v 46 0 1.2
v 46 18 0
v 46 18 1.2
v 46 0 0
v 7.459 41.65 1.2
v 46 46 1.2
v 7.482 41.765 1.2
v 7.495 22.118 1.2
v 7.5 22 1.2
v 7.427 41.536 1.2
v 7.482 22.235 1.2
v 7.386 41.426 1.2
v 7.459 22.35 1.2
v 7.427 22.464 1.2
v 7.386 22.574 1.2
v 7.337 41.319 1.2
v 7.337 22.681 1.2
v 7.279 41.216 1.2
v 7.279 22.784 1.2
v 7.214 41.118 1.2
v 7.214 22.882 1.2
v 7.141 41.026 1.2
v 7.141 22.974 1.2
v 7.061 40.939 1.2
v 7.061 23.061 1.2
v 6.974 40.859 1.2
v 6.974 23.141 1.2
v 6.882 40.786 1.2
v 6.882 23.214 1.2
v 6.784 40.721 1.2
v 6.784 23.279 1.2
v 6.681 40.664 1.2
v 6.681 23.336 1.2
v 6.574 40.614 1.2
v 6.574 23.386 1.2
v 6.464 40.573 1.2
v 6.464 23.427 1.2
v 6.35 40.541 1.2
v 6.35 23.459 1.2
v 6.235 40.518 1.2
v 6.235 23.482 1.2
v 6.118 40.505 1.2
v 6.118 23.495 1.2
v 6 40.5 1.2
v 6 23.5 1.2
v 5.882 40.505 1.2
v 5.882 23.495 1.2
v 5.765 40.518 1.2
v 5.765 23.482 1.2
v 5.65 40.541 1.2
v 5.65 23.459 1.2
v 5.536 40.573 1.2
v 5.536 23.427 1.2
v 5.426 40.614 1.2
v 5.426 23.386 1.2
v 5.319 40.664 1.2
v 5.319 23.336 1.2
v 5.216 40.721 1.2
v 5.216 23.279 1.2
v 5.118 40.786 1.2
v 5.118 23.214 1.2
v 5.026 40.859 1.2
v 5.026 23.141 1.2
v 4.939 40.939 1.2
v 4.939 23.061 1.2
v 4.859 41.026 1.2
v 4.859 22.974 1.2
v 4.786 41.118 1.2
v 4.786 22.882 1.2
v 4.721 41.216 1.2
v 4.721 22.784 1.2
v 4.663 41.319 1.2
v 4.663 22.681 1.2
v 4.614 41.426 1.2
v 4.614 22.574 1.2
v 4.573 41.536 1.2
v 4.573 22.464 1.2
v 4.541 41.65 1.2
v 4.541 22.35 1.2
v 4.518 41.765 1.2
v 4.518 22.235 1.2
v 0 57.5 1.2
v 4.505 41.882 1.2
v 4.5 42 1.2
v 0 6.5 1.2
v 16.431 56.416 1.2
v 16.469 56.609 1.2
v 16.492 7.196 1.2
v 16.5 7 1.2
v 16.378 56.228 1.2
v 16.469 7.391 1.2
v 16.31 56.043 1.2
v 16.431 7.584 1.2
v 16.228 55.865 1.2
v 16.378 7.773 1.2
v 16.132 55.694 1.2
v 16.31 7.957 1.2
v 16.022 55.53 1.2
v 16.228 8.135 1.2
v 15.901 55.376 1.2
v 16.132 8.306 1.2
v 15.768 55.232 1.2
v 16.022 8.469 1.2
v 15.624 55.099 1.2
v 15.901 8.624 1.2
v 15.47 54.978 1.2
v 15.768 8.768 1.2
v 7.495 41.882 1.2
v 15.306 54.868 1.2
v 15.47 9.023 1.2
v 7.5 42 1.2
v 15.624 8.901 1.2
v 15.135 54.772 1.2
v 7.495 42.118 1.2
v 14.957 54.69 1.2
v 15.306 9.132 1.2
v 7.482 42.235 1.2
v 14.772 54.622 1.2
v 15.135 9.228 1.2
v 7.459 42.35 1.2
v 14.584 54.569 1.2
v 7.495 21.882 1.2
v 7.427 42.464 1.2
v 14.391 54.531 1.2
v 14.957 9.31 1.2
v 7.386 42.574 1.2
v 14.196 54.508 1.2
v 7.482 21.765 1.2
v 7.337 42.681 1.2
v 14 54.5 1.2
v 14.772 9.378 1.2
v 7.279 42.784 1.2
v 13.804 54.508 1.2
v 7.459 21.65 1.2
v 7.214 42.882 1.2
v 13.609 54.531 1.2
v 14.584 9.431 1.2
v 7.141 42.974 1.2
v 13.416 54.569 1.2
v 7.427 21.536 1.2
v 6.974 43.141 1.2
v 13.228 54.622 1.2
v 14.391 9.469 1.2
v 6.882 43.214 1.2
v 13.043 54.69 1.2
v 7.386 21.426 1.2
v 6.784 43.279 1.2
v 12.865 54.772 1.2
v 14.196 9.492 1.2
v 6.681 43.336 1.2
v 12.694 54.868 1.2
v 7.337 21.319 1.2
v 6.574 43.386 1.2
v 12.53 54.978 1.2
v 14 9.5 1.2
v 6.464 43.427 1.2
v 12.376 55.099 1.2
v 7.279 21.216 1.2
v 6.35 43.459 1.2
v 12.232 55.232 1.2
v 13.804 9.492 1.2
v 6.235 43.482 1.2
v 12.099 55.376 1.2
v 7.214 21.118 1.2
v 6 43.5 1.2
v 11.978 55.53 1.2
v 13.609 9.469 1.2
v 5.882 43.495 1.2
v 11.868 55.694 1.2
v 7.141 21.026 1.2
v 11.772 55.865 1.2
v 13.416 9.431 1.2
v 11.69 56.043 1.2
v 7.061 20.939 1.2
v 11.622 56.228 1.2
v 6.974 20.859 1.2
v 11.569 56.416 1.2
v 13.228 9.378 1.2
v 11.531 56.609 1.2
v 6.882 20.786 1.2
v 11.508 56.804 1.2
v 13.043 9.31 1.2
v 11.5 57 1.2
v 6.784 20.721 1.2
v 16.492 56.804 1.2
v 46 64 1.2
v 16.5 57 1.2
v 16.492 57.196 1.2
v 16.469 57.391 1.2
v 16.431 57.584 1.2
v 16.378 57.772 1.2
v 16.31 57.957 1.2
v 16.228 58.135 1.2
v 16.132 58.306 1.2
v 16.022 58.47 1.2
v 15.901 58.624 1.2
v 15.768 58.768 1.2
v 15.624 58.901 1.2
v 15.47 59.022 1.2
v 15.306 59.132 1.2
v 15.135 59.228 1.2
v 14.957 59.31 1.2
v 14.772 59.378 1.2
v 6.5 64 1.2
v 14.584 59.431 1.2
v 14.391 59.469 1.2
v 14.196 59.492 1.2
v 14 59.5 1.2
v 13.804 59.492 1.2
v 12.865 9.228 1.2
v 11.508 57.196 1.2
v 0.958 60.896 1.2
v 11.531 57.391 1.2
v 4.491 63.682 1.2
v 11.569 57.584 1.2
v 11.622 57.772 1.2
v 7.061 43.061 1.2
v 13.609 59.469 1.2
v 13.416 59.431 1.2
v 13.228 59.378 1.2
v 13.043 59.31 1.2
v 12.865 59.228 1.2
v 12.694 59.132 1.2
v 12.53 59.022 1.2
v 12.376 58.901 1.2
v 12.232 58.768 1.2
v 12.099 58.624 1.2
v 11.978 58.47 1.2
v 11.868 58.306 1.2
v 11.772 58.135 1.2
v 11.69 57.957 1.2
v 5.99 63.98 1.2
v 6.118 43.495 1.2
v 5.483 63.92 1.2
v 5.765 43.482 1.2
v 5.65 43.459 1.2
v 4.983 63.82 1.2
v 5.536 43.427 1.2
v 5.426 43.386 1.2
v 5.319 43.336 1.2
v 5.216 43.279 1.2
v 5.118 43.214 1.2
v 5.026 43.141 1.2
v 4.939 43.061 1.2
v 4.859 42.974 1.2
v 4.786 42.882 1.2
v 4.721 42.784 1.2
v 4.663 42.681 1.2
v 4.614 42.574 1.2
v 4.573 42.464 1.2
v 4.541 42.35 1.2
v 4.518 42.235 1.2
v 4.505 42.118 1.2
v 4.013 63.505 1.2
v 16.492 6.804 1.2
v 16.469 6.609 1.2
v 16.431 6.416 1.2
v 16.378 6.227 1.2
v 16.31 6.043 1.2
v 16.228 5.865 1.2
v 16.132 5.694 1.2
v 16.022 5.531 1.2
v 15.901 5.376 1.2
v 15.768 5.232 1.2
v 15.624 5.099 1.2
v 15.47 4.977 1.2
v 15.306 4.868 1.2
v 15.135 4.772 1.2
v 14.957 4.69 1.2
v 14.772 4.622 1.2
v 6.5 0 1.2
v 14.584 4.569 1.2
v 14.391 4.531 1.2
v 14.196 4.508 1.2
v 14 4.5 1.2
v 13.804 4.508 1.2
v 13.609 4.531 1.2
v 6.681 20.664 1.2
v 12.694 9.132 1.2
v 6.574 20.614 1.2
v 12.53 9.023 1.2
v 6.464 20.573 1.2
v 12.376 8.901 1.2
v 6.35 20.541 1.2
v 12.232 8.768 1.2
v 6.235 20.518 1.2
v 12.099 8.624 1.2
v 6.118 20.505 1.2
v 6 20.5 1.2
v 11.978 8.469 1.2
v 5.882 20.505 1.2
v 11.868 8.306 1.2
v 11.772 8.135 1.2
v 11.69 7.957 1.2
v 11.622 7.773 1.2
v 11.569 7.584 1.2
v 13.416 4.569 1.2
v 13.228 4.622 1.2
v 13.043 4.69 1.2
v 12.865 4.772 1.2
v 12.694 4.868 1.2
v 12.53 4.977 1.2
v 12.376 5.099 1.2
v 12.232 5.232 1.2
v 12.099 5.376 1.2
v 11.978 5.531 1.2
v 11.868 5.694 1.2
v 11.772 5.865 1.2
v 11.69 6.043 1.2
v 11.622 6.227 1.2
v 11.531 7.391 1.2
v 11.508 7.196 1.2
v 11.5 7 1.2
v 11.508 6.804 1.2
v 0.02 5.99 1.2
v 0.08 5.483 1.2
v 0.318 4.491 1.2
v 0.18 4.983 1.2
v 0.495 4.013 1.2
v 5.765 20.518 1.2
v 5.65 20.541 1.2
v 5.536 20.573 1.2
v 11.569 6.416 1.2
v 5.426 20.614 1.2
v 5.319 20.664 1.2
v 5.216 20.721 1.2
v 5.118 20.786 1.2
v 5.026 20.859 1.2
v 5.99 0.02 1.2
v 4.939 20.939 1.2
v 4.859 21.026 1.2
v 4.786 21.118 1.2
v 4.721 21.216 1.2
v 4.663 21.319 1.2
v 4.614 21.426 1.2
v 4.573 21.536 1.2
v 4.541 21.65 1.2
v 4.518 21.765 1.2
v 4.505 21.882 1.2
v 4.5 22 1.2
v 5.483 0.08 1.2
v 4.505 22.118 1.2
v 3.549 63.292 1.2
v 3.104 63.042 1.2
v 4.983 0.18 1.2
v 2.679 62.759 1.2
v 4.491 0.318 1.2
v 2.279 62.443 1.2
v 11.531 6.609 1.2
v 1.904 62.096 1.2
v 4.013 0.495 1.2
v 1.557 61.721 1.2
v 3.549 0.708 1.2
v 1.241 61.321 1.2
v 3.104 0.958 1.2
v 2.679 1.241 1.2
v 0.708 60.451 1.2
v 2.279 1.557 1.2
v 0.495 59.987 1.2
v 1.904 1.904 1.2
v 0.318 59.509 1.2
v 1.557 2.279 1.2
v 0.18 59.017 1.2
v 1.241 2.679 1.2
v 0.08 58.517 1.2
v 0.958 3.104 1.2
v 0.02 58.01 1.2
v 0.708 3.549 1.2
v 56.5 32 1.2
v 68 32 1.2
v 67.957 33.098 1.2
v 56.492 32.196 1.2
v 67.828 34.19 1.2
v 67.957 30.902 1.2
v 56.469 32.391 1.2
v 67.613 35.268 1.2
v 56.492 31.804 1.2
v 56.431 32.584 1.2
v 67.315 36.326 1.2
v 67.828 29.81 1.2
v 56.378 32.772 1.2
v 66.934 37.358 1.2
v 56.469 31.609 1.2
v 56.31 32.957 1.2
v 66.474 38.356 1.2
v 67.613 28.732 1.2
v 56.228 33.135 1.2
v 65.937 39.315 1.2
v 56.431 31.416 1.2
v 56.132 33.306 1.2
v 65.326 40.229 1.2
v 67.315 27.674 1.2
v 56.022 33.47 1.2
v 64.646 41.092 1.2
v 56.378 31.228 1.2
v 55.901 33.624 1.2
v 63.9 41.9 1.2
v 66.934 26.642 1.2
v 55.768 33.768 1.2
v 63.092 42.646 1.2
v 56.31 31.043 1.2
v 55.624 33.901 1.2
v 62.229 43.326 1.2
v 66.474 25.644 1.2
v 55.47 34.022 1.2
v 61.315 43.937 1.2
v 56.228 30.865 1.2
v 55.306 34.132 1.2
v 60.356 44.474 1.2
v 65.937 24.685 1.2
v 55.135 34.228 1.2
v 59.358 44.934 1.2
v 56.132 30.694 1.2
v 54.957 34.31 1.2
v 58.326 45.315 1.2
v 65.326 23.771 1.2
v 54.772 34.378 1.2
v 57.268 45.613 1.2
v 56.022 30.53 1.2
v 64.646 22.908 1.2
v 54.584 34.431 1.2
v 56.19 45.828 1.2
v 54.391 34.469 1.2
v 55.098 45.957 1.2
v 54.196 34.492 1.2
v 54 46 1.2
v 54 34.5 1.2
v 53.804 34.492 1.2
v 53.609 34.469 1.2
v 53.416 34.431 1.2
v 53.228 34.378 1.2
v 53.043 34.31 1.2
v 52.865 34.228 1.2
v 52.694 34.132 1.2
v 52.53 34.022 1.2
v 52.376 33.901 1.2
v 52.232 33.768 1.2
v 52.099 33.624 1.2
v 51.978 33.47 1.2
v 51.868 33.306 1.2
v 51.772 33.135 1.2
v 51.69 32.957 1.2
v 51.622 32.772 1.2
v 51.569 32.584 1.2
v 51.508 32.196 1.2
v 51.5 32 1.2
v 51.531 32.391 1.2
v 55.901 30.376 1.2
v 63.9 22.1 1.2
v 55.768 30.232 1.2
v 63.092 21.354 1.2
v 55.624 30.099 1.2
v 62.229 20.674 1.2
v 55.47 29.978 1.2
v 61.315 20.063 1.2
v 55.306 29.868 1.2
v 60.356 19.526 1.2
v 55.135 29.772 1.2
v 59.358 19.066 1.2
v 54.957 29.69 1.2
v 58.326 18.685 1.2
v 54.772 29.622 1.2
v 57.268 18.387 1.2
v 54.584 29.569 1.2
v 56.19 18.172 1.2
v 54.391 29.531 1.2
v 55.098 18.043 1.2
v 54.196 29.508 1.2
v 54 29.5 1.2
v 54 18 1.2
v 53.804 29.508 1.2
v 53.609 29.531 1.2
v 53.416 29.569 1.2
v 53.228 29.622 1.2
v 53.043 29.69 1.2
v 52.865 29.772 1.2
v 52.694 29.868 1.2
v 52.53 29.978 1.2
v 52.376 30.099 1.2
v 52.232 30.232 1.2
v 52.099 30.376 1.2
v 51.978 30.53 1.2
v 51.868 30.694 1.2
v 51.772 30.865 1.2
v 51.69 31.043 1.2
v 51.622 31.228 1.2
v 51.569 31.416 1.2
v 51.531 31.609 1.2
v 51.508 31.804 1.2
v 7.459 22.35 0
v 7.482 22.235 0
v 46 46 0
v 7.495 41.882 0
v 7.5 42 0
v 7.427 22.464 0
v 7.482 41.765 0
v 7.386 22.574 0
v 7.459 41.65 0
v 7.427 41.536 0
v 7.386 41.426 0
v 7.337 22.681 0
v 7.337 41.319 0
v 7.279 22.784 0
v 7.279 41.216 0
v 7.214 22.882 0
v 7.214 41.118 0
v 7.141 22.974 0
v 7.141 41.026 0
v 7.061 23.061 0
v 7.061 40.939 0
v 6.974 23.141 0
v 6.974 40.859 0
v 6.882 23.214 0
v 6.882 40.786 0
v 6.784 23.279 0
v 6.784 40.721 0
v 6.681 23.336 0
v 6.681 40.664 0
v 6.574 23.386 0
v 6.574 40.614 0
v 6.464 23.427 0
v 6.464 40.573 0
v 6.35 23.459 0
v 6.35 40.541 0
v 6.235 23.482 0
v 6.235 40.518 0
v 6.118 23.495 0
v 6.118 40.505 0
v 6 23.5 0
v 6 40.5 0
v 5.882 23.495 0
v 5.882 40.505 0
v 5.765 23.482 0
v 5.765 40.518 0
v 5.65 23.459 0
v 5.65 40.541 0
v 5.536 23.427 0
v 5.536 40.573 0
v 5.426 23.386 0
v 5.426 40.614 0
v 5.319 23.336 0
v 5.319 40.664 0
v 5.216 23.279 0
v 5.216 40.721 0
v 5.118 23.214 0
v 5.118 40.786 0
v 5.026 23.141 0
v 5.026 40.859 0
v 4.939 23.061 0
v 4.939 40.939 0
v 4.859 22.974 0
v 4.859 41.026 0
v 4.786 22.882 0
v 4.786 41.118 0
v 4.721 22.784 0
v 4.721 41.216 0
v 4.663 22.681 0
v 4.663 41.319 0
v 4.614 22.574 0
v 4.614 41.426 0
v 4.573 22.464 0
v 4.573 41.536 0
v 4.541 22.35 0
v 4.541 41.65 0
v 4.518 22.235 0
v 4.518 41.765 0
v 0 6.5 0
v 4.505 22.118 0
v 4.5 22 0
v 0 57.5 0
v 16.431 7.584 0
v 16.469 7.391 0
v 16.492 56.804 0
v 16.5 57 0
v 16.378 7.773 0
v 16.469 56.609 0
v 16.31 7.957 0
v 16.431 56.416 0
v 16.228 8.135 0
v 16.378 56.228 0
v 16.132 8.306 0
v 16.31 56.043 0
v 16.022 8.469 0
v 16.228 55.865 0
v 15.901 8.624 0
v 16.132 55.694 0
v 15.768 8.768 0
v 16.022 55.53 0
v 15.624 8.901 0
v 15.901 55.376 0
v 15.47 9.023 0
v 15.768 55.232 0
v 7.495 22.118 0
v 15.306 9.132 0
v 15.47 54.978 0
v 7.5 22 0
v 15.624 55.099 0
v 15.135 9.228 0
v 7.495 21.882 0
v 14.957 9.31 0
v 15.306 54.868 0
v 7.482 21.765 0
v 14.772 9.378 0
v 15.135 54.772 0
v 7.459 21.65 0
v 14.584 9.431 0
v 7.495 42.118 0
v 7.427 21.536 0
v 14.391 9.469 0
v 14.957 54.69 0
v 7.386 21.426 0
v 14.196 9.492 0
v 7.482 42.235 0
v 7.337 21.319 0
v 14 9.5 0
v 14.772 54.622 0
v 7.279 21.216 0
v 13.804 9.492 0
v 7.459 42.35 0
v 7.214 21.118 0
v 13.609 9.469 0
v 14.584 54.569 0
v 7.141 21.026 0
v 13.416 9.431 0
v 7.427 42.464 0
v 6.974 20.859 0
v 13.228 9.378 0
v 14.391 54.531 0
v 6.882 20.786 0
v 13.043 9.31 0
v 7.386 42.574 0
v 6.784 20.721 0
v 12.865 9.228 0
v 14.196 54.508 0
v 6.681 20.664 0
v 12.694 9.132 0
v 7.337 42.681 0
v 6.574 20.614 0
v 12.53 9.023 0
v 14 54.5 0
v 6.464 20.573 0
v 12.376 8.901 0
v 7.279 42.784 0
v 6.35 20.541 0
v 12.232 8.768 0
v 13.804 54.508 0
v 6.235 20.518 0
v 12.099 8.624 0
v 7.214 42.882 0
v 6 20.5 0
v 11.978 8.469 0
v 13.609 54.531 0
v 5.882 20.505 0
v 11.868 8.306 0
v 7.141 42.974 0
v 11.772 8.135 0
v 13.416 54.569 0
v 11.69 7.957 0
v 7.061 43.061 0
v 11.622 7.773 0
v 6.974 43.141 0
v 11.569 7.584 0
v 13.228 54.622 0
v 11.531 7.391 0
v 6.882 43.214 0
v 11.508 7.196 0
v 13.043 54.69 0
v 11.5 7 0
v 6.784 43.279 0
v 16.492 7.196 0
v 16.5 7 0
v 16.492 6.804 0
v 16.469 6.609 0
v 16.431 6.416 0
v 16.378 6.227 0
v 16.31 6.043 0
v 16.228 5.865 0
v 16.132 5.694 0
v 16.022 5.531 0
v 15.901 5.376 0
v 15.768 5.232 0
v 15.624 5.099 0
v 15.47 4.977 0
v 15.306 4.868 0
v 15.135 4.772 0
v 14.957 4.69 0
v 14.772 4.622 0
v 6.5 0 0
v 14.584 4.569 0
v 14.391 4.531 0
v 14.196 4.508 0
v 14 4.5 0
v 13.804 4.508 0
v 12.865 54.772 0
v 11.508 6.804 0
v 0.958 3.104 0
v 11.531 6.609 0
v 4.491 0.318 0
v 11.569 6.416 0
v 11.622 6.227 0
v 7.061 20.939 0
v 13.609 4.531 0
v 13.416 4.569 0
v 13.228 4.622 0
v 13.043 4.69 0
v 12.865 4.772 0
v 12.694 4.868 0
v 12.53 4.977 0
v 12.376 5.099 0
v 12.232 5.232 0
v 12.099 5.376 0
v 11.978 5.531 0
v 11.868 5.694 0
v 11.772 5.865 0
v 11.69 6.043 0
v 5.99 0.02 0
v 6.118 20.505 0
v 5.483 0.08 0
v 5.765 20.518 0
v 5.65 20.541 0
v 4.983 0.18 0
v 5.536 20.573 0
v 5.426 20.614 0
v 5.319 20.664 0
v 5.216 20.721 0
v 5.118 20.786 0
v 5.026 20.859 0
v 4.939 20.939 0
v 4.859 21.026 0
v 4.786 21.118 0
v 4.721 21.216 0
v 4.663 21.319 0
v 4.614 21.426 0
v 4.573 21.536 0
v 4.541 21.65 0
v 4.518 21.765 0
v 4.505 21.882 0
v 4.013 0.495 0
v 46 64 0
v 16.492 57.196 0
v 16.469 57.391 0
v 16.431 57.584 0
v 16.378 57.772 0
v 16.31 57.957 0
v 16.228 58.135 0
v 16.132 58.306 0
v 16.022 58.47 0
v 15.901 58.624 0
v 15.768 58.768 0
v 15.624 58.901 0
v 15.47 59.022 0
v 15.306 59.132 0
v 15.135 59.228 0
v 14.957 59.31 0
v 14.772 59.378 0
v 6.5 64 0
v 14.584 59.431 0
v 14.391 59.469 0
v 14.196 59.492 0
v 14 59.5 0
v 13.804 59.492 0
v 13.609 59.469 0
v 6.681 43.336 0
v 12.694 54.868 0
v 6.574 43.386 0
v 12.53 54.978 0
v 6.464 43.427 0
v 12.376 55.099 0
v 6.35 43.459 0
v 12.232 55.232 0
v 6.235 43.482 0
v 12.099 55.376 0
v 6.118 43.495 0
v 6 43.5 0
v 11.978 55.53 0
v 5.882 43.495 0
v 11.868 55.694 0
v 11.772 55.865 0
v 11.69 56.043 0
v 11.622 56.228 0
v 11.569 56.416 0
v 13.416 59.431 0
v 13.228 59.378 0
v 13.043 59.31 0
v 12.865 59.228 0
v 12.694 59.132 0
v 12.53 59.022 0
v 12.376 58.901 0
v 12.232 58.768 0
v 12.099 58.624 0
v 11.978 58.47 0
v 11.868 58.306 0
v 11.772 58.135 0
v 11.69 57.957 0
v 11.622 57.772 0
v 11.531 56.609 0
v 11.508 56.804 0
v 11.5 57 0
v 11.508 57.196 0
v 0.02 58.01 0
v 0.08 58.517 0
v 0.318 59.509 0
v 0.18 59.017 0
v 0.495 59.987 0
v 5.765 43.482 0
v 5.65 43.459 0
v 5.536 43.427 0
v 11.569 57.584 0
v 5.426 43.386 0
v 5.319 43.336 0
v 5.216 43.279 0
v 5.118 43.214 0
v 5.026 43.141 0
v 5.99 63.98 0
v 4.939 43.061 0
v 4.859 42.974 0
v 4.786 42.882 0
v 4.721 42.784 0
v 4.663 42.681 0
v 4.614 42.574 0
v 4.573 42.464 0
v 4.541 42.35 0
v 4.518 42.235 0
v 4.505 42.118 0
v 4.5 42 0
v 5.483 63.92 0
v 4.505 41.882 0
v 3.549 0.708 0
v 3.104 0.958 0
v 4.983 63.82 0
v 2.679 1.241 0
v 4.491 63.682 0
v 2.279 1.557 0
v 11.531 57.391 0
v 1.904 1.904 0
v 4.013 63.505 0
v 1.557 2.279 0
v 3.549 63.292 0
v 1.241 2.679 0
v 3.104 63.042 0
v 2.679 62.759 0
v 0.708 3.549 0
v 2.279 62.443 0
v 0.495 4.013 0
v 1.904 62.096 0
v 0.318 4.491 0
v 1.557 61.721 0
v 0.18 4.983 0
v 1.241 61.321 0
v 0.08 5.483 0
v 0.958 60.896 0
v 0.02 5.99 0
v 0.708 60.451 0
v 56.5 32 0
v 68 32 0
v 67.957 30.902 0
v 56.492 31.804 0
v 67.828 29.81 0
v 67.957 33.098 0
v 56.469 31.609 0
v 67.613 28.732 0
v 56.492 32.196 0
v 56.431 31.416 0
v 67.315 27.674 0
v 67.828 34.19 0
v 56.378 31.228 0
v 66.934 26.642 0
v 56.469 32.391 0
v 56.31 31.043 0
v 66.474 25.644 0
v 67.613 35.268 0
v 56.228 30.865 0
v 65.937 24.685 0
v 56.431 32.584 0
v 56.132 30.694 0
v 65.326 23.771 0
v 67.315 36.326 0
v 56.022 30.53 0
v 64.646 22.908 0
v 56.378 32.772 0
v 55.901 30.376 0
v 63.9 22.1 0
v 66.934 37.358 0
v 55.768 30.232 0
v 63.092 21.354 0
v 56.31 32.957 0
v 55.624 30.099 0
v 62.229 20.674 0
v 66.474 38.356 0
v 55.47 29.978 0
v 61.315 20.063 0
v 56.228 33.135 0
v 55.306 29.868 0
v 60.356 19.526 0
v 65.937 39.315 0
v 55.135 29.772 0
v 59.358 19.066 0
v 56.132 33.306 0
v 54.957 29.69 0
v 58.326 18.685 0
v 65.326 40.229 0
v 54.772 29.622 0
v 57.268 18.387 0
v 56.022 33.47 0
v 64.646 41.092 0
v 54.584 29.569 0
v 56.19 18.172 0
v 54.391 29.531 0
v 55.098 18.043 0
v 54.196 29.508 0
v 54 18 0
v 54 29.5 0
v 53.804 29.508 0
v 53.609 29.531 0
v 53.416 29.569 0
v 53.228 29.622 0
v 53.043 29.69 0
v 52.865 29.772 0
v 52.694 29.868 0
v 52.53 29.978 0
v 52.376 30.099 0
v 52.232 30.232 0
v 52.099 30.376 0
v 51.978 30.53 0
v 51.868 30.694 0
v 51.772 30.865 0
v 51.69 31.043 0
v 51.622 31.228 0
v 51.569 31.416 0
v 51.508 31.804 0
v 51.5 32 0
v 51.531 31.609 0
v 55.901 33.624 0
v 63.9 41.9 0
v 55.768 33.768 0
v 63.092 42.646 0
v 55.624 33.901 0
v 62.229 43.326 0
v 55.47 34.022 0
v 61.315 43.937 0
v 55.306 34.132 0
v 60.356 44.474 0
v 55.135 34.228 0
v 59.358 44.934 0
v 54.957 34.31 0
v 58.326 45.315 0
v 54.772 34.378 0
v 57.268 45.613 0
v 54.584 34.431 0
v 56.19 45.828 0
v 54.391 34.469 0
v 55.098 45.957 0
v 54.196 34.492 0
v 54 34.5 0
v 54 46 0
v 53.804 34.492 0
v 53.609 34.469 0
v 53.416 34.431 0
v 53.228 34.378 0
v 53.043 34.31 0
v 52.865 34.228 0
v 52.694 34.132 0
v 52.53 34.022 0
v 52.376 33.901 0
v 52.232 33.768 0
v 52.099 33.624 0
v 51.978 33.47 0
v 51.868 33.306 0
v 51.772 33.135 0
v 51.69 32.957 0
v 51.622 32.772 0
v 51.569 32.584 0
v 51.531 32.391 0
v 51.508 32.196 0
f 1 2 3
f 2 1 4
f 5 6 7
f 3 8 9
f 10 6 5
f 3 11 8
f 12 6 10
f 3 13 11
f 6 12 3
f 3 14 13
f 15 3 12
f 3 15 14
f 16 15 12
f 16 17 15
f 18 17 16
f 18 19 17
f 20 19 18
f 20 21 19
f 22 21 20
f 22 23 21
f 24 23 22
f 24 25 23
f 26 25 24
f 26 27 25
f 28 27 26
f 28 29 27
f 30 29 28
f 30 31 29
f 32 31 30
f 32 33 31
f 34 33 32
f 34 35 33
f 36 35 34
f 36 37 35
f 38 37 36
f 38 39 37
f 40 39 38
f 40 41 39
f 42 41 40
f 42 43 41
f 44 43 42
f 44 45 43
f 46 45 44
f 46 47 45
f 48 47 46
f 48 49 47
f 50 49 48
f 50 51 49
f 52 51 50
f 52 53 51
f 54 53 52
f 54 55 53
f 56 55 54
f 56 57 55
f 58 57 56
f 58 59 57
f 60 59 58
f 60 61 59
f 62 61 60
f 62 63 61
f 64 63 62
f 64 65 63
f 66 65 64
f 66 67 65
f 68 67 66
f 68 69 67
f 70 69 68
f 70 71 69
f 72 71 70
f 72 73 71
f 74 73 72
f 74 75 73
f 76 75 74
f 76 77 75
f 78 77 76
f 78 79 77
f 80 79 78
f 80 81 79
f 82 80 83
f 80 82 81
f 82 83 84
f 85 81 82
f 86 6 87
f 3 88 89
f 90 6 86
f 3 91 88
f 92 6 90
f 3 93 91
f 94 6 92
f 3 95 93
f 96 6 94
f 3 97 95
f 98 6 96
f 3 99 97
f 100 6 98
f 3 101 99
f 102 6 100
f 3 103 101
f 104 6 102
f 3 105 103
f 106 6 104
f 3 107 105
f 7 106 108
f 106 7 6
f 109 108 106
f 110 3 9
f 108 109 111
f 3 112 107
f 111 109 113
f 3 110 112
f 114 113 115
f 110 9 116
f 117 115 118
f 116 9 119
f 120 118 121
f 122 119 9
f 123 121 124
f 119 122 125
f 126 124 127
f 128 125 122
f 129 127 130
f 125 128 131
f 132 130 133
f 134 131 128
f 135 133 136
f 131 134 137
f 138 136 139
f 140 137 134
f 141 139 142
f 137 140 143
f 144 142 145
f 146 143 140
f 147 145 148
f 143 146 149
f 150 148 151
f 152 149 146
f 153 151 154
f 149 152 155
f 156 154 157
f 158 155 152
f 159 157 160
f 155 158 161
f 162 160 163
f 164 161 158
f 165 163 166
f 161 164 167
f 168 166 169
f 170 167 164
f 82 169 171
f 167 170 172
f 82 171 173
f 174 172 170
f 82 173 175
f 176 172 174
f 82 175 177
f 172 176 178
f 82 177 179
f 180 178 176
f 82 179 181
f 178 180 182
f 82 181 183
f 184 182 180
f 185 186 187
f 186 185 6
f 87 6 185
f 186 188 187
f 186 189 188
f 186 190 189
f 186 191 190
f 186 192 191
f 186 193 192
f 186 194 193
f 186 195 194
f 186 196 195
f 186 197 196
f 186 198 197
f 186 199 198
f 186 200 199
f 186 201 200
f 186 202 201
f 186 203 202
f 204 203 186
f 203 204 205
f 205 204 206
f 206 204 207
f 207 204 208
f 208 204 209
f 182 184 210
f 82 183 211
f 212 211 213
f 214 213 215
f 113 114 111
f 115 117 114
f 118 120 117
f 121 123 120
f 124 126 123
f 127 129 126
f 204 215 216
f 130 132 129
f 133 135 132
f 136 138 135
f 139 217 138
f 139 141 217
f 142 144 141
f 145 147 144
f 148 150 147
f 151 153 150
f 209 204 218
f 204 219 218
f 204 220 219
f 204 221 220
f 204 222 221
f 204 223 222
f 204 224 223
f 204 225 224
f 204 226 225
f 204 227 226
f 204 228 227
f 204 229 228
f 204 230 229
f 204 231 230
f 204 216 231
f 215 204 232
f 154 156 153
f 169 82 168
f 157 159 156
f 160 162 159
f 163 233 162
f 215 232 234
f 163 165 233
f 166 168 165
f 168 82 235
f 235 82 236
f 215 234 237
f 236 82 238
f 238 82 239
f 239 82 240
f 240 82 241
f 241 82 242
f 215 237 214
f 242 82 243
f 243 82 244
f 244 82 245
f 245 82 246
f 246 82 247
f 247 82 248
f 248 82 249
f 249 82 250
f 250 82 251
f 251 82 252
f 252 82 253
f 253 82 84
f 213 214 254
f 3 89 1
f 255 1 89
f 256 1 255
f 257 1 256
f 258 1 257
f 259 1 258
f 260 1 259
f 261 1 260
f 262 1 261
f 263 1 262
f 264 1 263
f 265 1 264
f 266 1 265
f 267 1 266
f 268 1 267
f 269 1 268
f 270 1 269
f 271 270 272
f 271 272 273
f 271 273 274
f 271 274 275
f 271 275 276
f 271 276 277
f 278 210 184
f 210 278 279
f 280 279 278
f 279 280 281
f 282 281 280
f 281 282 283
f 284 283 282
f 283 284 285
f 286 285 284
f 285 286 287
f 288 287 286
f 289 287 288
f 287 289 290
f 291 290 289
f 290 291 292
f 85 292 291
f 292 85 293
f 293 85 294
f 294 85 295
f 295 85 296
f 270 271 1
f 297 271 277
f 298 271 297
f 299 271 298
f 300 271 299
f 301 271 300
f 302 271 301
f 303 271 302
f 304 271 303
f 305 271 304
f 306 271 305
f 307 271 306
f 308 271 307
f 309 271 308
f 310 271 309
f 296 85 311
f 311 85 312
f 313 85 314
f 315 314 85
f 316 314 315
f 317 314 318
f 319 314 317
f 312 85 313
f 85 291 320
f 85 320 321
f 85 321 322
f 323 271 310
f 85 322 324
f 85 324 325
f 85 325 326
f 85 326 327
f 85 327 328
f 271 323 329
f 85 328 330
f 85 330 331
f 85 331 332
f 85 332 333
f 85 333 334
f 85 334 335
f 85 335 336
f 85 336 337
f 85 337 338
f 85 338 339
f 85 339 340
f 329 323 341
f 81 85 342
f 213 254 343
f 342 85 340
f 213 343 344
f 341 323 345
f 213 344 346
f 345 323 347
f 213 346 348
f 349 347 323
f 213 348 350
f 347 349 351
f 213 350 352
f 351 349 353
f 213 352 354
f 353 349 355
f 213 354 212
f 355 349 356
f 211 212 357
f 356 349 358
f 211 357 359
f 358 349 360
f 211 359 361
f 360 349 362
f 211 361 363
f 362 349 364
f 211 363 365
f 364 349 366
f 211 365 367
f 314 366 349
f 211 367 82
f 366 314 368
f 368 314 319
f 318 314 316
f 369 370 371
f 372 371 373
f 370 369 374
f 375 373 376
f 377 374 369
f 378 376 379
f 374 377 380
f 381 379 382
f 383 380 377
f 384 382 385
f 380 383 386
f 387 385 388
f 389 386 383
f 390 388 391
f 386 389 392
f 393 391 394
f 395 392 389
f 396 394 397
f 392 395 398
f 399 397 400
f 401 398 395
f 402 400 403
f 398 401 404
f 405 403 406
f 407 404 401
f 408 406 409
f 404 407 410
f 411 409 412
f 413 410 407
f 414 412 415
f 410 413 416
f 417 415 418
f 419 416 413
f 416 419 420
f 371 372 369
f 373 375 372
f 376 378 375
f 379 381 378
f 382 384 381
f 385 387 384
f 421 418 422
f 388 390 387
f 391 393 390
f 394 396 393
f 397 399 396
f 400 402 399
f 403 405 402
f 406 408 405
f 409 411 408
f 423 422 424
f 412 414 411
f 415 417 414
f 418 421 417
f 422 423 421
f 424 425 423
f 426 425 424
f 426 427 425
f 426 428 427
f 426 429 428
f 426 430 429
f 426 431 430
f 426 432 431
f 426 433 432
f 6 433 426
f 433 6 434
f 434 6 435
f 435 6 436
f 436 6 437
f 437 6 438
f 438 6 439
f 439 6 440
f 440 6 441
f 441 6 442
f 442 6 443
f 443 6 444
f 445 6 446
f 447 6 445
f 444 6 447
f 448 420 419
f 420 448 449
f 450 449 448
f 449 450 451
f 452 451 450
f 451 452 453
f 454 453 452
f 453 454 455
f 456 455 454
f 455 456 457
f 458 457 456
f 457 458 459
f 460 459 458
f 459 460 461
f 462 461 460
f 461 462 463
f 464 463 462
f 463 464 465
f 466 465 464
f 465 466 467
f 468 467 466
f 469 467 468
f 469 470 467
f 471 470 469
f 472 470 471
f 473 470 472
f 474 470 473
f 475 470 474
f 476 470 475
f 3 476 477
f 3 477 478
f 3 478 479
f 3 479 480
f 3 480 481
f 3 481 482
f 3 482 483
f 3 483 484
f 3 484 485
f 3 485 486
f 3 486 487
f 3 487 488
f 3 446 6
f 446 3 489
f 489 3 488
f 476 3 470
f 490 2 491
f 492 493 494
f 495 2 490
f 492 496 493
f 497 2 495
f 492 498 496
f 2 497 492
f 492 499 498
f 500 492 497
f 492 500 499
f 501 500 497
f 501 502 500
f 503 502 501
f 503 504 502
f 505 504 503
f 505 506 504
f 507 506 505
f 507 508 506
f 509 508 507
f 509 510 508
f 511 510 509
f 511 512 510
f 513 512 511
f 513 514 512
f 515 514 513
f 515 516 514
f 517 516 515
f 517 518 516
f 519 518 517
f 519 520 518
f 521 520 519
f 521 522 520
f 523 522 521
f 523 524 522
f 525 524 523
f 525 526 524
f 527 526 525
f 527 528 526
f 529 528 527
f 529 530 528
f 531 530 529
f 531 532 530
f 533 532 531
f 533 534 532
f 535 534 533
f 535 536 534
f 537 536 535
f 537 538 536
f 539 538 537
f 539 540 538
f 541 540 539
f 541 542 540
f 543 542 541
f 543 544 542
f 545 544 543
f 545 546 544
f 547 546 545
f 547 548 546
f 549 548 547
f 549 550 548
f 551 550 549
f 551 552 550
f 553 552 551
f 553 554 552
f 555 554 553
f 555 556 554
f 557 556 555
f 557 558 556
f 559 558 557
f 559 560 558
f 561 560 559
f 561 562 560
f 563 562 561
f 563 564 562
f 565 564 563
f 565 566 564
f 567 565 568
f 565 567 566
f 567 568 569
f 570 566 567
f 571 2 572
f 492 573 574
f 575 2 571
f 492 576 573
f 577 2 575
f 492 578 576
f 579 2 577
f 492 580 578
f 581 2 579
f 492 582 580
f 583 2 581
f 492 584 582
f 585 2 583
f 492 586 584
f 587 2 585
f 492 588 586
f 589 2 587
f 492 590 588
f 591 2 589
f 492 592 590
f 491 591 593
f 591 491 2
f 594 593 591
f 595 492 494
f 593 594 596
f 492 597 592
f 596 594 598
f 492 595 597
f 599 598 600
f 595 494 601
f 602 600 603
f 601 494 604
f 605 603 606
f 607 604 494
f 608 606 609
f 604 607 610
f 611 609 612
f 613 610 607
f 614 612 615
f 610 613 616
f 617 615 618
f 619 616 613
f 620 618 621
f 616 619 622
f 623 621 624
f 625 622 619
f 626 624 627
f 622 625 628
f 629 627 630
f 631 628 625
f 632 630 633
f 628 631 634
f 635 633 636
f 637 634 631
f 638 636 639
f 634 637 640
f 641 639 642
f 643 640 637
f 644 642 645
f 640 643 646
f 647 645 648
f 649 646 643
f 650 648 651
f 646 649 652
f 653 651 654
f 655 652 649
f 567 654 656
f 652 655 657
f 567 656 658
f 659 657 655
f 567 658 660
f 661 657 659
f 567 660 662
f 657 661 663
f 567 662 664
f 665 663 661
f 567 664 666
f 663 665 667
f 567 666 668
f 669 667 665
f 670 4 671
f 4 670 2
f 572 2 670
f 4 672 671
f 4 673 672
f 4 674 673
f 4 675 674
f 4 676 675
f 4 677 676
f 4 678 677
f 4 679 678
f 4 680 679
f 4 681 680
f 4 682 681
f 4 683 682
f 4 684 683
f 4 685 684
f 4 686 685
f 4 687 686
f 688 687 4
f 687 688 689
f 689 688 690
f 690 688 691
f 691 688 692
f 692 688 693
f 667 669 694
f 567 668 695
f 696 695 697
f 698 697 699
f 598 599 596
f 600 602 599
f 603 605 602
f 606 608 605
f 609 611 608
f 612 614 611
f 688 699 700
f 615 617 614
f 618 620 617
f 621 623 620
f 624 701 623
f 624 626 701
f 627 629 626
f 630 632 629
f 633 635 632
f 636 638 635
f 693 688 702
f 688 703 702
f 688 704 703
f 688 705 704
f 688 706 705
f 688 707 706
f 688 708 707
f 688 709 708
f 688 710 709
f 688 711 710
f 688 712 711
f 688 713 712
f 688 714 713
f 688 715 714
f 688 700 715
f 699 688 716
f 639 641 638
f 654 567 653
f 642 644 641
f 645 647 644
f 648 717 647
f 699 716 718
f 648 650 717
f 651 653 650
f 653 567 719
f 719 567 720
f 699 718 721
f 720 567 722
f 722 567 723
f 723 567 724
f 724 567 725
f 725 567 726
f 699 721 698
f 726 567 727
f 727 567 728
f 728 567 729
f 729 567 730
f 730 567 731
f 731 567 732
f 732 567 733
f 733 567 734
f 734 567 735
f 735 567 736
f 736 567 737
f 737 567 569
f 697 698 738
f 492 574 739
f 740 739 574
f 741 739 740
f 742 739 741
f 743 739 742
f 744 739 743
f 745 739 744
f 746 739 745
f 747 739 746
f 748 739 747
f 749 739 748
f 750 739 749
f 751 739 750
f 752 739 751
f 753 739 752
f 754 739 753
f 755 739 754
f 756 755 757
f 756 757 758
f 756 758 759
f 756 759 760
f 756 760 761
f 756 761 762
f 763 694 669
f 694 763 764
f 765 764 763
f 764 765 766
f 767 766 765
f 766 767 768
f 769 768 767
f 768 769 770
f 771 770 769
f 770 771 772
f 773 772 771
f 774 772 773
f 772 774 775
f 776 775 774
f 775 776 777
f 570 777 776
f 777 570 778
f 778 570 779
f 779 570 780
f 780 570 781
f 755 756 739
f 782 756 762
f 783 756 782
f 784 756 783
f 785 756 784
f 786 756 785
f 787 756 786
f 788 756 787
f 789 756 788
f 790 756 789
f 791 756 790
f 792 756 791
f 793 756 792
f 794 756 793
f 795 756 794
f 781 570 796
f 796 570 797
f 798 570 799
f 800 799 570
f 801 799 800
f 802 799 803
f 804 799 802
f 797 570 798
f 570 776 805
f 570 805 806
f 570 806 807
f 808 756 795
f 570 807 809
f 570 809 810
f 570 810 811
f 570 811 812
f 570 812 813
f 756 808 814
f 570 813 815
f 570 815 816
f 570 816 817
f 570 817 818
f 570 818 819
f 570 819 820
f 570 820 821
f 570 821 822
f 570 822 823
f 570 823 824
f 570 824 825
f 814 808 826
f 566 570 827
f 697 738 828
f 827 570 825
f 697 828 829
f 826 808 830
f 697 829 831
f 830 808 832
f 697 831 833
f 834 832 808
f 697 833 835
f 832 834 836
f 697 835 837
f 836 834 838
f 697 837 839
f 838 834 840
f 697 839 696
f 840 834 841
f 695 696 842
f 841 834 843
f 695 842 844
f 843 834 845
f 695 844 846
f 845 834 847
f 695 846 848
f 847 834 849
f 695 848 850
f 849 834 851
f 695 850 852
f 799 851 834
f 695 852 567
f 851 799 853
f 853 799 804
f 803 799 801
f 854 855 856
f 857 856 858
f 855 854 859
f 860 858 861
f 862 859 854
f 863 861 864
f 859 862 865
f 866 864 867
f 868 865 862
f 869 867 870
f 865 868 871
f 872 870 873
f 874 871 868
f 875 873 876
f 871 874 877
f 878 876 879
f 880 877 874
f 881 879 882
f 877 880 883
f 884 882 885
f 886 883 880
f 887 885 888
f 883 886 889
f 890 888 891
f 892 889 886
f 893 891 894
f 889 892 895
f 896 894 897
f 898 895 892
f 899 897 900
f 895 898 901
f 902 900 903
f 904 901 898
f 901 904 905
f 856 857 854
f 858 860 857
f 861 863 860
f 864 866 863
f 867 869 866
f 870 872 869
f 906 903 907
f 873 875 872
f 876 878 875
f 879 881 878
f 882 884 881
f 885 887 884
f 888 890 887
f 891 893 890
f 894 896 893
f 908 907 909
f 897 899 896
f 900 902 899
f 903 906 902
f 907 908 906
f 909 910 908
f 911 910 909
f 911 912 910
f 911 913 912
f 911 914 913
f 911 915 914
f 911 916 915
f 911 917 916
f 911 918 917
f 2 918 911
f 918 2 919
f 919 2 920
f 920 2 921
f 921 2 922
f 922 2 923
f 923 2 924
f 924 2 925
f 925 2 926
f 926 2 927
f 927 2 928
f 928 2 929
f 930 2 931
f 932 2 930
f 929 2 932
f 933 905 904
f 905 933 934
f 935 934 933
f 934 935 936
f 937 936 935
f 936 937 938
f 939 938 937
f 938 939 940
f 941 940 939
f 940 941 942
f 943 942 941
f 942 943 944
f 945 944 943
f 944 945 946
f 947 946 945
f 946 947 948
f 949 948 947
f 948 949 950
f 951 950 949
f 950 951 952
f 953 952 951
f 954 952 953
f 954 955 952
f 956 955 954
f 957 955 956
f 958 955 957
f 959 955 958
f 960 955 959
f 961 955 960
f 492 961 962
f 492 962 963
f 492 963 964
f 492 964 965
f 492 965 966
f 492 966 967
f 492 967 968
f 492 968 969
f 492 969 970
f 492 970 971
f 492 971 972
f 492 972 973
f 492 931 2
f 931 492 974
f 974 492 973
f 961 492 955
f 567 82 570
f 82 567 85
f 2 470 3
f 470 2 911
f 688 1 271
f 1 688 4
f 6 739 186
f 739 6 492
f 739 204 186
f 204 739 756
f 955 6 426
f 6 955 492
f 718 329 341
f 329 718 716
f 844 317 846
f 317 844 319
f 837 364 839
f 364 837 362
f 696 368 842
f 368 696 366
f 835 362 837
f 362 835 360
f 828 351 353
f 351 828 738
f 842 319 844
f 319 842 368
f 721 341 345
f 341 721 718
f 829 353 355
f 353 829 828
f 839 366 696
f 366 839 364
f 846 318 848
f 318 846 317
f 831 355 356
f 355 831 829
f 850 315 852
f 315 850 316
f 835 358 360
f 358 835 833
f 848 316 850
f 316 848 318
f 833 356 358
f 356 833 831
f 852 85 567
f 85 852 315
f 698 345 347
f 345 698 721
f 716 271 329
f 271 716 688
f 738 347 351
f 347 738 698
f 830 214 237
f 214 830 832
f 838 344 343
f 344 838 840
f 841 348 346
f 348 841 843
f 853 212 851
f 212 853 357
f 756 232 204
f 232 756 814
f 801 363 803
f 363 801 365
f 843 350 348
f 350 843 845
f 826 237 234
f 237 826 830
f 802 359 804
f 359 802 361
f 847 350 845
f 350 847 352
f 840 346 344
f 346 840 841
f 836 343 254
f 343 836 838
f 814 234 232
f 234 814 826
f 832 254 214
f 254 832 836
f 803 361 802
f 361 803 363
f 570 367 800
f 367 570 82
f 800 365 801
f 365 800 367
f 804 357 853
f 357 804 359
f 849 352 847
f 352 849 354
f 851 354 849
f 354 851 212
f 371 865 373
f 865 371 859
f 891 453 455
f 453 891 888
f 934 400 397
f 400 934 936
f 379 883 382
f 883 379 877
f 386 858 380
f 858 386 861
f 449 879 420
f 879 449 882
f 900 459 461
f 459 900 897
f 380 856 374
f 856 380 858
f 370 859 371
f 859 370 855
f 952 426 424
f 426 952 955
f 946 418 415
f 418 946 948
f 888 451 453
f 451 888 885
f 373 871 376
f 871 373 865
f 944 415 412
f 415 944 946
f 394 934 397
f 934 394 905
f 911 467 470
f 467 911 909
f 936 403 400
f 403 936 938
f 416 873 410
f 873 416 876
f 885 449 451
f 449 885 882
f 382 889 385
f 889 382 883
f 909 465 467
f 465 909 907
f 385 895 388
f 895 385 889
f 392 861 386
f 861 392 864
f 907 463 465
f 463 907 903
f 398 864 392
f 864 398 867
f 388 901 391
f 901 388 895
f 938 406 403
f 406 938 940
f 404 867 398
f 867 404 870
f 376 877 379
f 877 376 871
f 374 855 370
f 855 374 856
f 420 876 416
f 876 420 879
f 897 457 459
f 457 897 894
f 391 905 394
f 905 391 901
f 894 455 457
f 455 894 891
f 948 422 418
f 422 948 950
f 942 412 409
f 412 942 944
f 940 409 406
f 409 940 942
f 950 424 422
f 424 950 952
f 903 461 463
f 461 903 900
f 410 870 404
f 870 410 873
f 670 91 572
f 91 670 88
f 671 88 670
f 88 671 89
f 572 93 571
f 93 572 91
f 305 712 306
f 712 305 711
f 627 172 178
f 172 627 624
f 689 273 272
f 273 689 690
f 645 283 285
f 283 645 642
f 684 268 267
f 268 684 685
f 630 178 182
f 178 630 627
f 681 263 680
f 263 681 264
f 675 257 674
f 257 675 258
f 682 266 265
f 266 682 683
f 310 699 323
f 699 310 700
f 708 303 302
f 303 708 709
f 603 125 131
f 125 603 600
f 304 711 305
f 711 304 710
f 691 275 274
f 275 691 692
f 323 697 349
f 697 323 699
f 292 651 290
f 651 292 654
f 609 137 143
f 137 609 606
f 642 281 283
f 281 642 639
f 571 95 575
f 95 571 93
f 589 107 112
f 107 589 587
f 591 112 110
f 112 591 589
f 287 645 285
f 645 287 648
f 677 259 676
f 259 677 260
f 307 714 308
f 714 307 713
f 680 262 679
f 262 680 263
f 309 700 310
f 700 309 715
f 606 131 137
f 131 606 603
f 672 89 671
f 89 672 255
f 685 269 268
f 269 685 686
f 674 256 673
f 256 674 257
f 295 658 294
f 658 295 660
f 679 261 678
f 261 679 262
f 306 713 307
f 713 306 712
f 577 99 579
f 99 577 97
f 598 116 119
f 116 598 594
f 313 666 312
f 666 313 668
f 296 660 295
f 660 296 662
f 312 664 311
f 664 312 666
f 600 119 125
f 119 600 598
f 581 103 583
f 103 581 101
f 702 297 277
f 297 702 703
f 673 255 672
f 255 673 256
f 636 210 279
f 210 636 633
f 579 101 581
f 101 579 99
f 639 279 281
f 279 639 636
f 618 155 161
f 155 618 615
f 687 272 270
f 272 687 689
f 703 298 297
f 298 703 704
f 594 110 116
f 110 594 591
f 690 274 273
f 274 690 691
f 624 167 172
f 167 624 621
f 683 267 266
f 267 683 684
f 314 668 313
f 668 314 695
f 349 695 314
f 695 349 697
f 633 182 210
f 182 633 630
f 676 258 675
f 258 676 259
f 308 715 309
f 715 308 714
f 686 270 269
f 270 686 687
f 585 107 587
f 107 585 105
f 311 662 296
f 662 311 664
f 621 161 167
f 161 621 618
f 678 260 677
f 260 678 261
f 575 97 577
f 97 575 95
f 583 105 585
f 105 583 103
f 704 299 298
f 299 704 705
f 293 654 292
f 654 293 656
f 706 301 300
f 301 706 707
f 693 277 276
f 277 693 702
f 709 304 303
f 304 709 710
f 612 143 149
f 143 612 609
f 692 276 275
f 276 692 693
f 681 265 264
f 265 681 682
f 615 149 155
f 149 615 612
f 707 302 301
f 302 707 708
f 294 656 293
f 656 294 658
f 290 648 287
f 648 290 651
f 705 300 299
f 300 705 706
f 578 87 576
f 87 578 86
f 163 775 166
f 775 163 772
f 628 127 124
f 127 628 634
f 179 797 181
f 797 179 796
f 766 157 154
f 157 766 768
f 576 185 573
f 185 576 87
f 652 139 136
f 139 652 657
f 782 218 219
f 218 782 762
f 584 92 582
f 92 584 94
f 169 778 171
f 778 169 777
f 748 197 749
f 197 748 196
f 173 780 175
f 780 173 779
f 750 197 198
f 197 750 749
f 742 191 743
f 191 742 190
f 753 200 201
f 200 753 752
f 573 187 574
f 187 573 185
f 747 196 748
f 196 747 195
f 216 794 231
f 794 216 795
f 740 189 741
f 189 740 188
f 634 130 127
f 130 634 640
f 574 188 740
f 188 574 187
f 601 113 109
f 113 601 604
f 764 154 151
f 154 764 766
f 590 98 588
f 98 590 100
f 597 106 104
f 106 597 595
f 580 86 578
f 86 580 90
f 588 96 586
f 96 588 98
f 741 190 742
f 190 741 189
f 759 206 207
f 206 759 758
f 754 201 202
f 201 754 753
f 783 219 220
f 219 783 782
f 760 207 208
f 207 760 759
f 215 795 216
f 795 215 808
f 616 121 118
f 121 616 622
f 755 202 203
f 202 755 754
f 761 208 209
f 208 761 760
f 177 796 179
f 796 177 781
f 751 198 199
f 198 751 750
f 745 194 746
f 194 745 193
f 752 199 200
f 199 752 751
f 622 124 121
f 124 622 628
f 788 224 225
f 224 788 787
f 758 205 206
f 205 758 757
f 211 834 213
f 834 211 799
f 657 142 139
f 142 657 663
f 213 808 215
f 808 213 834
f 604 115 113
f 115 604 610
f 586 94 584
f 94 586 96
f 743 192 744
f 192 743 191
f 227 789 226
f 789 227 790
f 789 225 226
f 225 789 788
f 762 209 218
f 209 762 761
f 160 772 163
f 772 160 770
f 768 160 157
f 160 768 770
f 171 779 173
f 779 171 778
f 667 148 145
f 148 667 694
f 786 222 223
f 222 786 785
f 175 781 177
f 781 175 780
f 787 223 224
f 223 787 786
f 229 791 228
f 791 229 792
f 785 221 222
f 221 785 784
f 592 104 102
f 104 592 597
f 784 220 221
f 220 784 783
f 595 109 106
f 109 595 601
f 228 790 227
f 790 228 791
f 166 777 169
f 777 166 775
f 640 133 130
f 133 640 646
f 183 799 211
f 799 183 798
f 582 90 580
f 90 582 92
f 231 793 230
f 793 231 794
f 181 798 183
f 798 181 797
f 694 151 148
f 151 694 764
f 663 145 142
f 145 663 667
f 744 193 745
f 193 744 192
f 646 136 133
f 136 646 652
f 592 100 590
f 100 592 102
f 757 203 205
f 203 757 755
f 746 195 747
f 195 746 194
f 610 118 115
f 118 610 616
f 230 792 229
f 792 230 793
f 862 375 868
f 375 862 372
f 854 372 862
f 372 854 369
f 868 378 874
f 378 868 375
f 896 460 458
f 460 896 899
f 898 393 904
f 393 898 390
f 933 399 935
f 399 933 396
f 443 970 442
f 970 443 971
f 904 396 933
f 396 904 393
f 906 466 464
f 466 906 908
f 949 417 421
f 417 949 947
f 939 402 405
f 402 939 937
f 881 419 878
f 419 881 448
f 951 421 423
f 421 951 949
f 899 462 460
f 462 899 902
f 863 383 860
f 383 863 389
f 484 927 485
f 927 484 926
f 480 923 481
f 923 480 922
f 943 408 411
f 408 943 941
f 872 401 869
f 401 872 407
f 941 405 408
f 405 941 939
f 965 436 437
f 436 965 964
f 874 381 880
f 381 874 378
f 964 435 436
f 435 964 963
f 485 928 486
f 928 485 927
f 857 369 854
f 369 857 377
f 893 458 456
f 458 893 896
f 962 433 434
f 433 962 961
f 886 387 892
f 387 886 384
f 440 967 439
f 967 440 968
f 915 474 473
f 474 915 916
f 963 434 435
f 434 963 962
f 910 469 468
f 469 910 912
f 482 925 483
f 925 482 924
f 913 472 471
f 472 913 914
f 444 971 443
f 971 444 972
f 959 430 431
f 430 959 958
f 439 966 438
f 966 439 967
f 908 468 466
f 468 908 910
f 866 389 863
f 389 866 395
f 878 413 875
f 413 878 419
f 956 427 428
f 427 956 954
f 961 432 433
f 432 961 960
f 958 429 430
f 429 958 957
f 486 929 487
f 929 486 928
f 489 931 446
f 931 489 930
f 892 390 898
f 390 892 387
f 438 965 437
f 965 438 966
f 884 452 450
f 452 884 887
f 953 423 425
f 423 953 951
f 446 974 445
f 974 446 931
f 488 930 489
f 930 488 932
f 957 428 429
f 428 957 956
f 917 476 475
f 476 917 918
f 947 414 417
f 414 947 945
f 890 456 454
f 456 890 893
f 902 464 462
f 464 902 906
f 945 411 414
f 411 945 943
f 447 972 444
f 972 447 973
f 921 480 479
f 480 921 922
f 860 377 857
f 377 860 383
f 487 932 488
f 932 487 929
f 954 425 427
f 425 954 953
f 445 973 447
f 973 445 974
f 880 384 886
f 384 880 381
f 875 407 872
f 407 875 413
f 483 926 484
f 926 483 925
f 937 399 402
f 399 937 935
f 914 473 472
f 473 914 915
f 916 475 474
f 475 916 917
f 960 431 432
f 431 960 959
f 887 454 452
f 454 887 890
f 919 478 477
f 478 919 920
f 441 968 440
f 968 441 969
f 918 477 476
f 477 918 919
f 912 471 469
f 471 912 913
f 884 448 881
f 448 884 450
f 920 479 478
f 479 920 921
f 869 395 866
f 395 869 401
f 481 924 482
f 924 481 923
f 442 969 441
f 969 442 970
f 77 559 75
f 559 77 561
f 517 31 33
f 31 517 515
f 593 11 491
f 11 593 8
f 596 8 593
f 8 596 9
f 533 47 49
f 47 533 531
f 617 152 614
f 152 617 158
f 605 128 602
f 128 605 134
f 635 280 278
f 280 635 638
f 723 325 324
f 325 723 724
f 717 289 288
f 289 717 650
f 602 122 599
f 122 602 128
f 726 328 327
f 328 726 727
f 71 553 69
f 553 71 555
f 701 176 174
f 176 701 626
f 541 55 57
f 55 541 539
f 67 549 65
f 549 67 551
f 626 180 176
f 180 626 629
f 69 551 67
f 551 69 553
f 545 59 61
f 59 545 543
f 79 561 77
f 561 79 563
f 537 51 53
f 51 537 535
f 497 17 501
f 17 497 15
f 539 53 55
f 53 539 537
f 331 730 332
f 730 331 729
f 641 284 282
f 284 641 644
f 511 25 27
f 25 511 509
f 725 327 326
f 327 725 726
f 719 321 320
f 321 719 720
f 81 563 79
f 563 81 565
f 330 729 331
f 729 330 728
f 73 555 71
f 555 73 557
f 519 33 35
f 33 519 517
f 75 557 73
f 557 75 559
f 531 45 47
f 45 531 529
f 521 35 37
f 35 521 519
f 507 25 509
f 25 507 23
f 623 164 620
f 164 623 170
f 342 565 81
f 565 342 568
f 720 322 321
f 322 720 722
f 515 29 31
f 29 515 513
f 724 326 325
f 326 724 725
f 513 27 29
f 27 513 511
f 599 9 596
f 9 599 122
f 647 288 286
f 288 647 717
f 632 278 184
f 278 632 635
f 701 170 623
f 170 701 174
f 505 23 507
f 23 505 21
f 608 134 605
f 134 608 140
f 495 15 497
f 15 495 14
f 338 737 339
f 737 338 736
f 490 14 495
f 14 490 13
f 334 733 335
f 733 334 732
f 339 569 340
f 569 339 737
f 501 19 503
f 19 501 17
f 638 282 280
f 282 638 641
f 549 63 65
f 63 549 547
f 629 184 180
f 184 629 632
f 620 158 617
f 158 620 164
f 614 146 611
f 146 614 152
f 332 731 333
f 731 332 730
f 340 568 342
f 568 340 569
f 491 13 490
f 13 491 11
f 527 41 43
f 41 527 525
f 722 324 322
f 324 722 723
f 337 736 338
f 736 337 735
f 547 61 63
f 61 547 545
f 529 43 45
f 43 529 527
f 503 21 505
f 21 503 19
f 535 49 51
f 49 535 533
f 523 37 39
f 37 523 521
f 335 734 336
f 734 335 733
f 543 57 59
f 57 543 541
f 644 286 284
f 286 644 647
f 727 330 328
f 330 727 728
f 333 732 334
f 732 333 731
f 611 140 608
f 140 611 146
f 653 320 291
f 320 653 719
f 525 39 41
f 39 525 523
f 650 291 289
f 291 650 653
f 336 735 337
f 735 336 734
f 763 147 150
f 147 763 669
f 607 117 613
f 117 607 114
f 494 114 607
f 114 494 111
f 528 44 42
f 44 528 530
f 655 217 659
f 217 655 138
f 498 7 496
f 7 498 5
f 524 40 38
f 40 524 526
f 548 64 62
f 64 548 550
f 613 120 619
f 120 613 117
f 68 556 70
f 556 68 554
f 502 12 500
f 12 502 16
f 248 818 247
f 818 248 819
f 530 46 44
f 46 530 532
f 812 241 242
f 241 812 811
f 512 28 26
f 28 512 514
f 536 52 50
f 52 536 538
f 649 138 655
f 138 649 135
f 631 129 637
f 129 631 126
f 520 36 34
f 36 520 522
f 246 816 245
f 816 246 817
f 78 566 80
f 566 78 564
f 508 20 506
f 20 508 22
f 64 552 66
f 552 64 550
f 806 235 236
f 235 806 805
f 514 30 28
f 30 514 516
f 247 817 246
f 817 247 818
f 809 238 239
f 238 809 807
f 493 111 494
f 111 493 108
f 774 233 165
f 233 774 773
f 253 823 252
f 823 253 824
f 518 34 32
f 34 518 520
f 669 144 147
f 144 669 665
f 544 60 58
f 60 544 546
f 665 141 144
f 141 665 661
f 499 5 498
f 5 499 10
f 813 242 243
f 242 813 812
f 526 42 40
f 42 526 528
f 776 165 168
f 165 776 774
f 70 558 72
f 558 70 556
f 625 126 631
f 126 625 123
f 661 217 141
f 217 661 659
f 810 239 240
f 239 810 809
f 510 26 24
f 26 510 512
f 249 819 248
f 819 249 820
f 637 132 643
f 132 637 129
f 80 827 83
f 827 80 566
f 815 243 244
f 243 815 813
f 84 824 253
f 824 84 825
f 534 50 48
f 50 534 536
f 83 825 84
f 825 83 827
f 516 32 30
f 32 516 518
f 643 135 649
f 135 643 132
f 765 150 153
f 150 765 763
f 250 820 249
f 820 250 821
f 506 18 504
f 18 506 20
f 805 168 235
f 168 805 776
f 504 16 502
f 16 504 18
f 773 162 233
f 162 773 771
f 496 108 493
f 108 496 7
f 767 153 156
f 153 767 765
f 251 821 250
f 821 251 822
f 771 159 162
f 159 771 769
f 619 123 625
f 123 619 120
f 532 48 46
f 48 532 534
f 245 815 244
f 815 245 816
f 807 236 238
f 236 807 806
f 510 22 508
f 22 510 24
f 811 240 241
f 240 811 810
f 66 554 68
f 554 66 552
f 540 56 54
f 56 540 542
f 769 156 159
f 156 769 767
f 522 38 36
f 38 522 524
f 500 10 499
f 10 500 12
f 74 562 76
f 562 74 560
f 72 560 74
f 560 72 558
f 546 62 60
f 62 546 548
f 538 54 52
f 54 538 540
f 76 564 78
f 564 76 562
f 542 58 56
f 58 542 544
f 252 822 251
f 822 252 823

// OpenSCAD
$fn = 80;

// base Plate parameters
z = 1.2;
outerPlate = [68,64,z];
shoulderRadius = 6.5;
subtractSideLengthY = 18;
subtractSideLengthX = 22;
bottomRoundRadius = 14;

// bolt and screw parameters, top right bolt is datum
topNutYDistance = 50;
botNutXGap = 40;
topScrewYGap = 20;

//originally 10 then 9 then 7 then 8; x distance between the pair of hex screws and pair of hex bolts
topScrewBoltXGap = 8; 
topScrewYOffset = 15;
screwDia = 3;
boltDia= 5;

// note that the datum for mounting holes is the top left nut (bigger hole)

// this is the correct value for the edge x offset of the small screws up top
topScrewEdgeXOffset = 6; // x distance from the top of the mounting plate to the pair of hex screws

// this is already the correct value for the distance of the datum bolt from the top of the plate
// nope this is not the correct value
//topBoltXOffset = 15;
topBoltXOffset = topScrewBoltXGap + topScrewEdgeXOffset;
echo(topBoltXOffset);

// y distance from the left side of the mounting plate to the pair of nuts on top
topNutEdgeYOffset = 7; 
mount_baseplate_assembly();

module mount_baseplate_assembly(z=z) {
    difference() {
        basePlate(z=z);
        //oldBasePlate();
        translate([topBoltXOffset, topNutEdgeYOffset, 0])
            holeAssembly();
    };
};

module basePlate(z=z) {
    // left side
    difference() {
        cube([outerPlate[0]-subtractSideLengthX, subtractSideLengthY, z]);
        cube([shoulderRadius,shoulderRadius,z]);
    };
    translate([shoulderRadius, shoulderRadius, 0]) cylinder(r=shoulderRadius, h=z);
    // right side
    translate([0, subtractSideLengthY+2*bottomRoundRadius,0])
    difference() {
        cube([outerPlate[0]-subtractSideLengthX, subtractSideLengthY, z]);
        translate([0, subtractSideLengthY-shoulderRadius, 0])
            cube([shoulderRadius,shoulderRadius,z]);
    };
    translate([shoulderRadius, outerPlate[1]-shoulderRadius,0]) cylinder(r=shoulderRadius, h=z);
    translate([0, subtractSideLengthY, 0])
        cube([outerPlate[0]-bottomRoundRadius, 2*bottomRoundRadius, z]);
    // rounded bottom
    translate([outerPlate[0]-bottomRoundRadius, outerPlate[1]/2, 0])
        cylinder(r=bottomRoundRadius, h=outerPlate[2]);
}

module oldBasePlate() {
    difference() {
        cube(outerPlate);
        // bottom left subtraction
        translate([outerPlate[0]-subtractSideLengthX, 0, 0])
            cube([subtractSideLengthX,subtractSideLengthY,z]);
        // bottom right subtraction
        translate([outerPlate[0]-subtractSideLengthX, outerPlate[1]-subtractSideLengthY, 0])
            cube([subtractSideLengthX,subtractSideLengthY,z]); 
        // bottom bolt region subtraction before adding the rounded part back
        translate([outerPlate[0]-bottomRoundRadius,subtractSideLengthY,0])
            cube([bottomRoundRadius,outerPlate[1]-subtractSideLengthY*2,outerPlate[2]]);
    }
    // adding a cylinder for the bottom rounded part
    translate([outerPlate[0]-bottomRoundRadius,outerPlate[1]/2,0])
        cylinder(r=bottomRoundRadius, h=outerPlate[2]);
};

module holeAssembly(rs=screwDia/2, rb=boltDia/2, h=outerPlate[2]) {
    // datum bolt (the top left big circle)
    cylinder(r=rb, h=h);
    // top left bolt
    translate([0, topNutYDistance, 0])
        cylinder(r=rb, h=h);
    // top right bolt
    translate([botNutXGap, topNutYDistance/2, 0])
        cylinder(r=rb, h=h); 
    // bottom bolt
    translate([botNutXGap, topNutYDistance/2, 0])
        cylinder(r=rb, h=h); 
    // top left screw hole
    translate([-topScrewBoltXGap, topScrewYOffset, 0])
        cylinder(r=rs, h=h); 
    // top right screw hole
    translate([-topScrewBoltXGap, topScrewYOffset+topScrewYGap, 0])
        cylinder(r=rs, h=h); 
}
//holeAssembly();
